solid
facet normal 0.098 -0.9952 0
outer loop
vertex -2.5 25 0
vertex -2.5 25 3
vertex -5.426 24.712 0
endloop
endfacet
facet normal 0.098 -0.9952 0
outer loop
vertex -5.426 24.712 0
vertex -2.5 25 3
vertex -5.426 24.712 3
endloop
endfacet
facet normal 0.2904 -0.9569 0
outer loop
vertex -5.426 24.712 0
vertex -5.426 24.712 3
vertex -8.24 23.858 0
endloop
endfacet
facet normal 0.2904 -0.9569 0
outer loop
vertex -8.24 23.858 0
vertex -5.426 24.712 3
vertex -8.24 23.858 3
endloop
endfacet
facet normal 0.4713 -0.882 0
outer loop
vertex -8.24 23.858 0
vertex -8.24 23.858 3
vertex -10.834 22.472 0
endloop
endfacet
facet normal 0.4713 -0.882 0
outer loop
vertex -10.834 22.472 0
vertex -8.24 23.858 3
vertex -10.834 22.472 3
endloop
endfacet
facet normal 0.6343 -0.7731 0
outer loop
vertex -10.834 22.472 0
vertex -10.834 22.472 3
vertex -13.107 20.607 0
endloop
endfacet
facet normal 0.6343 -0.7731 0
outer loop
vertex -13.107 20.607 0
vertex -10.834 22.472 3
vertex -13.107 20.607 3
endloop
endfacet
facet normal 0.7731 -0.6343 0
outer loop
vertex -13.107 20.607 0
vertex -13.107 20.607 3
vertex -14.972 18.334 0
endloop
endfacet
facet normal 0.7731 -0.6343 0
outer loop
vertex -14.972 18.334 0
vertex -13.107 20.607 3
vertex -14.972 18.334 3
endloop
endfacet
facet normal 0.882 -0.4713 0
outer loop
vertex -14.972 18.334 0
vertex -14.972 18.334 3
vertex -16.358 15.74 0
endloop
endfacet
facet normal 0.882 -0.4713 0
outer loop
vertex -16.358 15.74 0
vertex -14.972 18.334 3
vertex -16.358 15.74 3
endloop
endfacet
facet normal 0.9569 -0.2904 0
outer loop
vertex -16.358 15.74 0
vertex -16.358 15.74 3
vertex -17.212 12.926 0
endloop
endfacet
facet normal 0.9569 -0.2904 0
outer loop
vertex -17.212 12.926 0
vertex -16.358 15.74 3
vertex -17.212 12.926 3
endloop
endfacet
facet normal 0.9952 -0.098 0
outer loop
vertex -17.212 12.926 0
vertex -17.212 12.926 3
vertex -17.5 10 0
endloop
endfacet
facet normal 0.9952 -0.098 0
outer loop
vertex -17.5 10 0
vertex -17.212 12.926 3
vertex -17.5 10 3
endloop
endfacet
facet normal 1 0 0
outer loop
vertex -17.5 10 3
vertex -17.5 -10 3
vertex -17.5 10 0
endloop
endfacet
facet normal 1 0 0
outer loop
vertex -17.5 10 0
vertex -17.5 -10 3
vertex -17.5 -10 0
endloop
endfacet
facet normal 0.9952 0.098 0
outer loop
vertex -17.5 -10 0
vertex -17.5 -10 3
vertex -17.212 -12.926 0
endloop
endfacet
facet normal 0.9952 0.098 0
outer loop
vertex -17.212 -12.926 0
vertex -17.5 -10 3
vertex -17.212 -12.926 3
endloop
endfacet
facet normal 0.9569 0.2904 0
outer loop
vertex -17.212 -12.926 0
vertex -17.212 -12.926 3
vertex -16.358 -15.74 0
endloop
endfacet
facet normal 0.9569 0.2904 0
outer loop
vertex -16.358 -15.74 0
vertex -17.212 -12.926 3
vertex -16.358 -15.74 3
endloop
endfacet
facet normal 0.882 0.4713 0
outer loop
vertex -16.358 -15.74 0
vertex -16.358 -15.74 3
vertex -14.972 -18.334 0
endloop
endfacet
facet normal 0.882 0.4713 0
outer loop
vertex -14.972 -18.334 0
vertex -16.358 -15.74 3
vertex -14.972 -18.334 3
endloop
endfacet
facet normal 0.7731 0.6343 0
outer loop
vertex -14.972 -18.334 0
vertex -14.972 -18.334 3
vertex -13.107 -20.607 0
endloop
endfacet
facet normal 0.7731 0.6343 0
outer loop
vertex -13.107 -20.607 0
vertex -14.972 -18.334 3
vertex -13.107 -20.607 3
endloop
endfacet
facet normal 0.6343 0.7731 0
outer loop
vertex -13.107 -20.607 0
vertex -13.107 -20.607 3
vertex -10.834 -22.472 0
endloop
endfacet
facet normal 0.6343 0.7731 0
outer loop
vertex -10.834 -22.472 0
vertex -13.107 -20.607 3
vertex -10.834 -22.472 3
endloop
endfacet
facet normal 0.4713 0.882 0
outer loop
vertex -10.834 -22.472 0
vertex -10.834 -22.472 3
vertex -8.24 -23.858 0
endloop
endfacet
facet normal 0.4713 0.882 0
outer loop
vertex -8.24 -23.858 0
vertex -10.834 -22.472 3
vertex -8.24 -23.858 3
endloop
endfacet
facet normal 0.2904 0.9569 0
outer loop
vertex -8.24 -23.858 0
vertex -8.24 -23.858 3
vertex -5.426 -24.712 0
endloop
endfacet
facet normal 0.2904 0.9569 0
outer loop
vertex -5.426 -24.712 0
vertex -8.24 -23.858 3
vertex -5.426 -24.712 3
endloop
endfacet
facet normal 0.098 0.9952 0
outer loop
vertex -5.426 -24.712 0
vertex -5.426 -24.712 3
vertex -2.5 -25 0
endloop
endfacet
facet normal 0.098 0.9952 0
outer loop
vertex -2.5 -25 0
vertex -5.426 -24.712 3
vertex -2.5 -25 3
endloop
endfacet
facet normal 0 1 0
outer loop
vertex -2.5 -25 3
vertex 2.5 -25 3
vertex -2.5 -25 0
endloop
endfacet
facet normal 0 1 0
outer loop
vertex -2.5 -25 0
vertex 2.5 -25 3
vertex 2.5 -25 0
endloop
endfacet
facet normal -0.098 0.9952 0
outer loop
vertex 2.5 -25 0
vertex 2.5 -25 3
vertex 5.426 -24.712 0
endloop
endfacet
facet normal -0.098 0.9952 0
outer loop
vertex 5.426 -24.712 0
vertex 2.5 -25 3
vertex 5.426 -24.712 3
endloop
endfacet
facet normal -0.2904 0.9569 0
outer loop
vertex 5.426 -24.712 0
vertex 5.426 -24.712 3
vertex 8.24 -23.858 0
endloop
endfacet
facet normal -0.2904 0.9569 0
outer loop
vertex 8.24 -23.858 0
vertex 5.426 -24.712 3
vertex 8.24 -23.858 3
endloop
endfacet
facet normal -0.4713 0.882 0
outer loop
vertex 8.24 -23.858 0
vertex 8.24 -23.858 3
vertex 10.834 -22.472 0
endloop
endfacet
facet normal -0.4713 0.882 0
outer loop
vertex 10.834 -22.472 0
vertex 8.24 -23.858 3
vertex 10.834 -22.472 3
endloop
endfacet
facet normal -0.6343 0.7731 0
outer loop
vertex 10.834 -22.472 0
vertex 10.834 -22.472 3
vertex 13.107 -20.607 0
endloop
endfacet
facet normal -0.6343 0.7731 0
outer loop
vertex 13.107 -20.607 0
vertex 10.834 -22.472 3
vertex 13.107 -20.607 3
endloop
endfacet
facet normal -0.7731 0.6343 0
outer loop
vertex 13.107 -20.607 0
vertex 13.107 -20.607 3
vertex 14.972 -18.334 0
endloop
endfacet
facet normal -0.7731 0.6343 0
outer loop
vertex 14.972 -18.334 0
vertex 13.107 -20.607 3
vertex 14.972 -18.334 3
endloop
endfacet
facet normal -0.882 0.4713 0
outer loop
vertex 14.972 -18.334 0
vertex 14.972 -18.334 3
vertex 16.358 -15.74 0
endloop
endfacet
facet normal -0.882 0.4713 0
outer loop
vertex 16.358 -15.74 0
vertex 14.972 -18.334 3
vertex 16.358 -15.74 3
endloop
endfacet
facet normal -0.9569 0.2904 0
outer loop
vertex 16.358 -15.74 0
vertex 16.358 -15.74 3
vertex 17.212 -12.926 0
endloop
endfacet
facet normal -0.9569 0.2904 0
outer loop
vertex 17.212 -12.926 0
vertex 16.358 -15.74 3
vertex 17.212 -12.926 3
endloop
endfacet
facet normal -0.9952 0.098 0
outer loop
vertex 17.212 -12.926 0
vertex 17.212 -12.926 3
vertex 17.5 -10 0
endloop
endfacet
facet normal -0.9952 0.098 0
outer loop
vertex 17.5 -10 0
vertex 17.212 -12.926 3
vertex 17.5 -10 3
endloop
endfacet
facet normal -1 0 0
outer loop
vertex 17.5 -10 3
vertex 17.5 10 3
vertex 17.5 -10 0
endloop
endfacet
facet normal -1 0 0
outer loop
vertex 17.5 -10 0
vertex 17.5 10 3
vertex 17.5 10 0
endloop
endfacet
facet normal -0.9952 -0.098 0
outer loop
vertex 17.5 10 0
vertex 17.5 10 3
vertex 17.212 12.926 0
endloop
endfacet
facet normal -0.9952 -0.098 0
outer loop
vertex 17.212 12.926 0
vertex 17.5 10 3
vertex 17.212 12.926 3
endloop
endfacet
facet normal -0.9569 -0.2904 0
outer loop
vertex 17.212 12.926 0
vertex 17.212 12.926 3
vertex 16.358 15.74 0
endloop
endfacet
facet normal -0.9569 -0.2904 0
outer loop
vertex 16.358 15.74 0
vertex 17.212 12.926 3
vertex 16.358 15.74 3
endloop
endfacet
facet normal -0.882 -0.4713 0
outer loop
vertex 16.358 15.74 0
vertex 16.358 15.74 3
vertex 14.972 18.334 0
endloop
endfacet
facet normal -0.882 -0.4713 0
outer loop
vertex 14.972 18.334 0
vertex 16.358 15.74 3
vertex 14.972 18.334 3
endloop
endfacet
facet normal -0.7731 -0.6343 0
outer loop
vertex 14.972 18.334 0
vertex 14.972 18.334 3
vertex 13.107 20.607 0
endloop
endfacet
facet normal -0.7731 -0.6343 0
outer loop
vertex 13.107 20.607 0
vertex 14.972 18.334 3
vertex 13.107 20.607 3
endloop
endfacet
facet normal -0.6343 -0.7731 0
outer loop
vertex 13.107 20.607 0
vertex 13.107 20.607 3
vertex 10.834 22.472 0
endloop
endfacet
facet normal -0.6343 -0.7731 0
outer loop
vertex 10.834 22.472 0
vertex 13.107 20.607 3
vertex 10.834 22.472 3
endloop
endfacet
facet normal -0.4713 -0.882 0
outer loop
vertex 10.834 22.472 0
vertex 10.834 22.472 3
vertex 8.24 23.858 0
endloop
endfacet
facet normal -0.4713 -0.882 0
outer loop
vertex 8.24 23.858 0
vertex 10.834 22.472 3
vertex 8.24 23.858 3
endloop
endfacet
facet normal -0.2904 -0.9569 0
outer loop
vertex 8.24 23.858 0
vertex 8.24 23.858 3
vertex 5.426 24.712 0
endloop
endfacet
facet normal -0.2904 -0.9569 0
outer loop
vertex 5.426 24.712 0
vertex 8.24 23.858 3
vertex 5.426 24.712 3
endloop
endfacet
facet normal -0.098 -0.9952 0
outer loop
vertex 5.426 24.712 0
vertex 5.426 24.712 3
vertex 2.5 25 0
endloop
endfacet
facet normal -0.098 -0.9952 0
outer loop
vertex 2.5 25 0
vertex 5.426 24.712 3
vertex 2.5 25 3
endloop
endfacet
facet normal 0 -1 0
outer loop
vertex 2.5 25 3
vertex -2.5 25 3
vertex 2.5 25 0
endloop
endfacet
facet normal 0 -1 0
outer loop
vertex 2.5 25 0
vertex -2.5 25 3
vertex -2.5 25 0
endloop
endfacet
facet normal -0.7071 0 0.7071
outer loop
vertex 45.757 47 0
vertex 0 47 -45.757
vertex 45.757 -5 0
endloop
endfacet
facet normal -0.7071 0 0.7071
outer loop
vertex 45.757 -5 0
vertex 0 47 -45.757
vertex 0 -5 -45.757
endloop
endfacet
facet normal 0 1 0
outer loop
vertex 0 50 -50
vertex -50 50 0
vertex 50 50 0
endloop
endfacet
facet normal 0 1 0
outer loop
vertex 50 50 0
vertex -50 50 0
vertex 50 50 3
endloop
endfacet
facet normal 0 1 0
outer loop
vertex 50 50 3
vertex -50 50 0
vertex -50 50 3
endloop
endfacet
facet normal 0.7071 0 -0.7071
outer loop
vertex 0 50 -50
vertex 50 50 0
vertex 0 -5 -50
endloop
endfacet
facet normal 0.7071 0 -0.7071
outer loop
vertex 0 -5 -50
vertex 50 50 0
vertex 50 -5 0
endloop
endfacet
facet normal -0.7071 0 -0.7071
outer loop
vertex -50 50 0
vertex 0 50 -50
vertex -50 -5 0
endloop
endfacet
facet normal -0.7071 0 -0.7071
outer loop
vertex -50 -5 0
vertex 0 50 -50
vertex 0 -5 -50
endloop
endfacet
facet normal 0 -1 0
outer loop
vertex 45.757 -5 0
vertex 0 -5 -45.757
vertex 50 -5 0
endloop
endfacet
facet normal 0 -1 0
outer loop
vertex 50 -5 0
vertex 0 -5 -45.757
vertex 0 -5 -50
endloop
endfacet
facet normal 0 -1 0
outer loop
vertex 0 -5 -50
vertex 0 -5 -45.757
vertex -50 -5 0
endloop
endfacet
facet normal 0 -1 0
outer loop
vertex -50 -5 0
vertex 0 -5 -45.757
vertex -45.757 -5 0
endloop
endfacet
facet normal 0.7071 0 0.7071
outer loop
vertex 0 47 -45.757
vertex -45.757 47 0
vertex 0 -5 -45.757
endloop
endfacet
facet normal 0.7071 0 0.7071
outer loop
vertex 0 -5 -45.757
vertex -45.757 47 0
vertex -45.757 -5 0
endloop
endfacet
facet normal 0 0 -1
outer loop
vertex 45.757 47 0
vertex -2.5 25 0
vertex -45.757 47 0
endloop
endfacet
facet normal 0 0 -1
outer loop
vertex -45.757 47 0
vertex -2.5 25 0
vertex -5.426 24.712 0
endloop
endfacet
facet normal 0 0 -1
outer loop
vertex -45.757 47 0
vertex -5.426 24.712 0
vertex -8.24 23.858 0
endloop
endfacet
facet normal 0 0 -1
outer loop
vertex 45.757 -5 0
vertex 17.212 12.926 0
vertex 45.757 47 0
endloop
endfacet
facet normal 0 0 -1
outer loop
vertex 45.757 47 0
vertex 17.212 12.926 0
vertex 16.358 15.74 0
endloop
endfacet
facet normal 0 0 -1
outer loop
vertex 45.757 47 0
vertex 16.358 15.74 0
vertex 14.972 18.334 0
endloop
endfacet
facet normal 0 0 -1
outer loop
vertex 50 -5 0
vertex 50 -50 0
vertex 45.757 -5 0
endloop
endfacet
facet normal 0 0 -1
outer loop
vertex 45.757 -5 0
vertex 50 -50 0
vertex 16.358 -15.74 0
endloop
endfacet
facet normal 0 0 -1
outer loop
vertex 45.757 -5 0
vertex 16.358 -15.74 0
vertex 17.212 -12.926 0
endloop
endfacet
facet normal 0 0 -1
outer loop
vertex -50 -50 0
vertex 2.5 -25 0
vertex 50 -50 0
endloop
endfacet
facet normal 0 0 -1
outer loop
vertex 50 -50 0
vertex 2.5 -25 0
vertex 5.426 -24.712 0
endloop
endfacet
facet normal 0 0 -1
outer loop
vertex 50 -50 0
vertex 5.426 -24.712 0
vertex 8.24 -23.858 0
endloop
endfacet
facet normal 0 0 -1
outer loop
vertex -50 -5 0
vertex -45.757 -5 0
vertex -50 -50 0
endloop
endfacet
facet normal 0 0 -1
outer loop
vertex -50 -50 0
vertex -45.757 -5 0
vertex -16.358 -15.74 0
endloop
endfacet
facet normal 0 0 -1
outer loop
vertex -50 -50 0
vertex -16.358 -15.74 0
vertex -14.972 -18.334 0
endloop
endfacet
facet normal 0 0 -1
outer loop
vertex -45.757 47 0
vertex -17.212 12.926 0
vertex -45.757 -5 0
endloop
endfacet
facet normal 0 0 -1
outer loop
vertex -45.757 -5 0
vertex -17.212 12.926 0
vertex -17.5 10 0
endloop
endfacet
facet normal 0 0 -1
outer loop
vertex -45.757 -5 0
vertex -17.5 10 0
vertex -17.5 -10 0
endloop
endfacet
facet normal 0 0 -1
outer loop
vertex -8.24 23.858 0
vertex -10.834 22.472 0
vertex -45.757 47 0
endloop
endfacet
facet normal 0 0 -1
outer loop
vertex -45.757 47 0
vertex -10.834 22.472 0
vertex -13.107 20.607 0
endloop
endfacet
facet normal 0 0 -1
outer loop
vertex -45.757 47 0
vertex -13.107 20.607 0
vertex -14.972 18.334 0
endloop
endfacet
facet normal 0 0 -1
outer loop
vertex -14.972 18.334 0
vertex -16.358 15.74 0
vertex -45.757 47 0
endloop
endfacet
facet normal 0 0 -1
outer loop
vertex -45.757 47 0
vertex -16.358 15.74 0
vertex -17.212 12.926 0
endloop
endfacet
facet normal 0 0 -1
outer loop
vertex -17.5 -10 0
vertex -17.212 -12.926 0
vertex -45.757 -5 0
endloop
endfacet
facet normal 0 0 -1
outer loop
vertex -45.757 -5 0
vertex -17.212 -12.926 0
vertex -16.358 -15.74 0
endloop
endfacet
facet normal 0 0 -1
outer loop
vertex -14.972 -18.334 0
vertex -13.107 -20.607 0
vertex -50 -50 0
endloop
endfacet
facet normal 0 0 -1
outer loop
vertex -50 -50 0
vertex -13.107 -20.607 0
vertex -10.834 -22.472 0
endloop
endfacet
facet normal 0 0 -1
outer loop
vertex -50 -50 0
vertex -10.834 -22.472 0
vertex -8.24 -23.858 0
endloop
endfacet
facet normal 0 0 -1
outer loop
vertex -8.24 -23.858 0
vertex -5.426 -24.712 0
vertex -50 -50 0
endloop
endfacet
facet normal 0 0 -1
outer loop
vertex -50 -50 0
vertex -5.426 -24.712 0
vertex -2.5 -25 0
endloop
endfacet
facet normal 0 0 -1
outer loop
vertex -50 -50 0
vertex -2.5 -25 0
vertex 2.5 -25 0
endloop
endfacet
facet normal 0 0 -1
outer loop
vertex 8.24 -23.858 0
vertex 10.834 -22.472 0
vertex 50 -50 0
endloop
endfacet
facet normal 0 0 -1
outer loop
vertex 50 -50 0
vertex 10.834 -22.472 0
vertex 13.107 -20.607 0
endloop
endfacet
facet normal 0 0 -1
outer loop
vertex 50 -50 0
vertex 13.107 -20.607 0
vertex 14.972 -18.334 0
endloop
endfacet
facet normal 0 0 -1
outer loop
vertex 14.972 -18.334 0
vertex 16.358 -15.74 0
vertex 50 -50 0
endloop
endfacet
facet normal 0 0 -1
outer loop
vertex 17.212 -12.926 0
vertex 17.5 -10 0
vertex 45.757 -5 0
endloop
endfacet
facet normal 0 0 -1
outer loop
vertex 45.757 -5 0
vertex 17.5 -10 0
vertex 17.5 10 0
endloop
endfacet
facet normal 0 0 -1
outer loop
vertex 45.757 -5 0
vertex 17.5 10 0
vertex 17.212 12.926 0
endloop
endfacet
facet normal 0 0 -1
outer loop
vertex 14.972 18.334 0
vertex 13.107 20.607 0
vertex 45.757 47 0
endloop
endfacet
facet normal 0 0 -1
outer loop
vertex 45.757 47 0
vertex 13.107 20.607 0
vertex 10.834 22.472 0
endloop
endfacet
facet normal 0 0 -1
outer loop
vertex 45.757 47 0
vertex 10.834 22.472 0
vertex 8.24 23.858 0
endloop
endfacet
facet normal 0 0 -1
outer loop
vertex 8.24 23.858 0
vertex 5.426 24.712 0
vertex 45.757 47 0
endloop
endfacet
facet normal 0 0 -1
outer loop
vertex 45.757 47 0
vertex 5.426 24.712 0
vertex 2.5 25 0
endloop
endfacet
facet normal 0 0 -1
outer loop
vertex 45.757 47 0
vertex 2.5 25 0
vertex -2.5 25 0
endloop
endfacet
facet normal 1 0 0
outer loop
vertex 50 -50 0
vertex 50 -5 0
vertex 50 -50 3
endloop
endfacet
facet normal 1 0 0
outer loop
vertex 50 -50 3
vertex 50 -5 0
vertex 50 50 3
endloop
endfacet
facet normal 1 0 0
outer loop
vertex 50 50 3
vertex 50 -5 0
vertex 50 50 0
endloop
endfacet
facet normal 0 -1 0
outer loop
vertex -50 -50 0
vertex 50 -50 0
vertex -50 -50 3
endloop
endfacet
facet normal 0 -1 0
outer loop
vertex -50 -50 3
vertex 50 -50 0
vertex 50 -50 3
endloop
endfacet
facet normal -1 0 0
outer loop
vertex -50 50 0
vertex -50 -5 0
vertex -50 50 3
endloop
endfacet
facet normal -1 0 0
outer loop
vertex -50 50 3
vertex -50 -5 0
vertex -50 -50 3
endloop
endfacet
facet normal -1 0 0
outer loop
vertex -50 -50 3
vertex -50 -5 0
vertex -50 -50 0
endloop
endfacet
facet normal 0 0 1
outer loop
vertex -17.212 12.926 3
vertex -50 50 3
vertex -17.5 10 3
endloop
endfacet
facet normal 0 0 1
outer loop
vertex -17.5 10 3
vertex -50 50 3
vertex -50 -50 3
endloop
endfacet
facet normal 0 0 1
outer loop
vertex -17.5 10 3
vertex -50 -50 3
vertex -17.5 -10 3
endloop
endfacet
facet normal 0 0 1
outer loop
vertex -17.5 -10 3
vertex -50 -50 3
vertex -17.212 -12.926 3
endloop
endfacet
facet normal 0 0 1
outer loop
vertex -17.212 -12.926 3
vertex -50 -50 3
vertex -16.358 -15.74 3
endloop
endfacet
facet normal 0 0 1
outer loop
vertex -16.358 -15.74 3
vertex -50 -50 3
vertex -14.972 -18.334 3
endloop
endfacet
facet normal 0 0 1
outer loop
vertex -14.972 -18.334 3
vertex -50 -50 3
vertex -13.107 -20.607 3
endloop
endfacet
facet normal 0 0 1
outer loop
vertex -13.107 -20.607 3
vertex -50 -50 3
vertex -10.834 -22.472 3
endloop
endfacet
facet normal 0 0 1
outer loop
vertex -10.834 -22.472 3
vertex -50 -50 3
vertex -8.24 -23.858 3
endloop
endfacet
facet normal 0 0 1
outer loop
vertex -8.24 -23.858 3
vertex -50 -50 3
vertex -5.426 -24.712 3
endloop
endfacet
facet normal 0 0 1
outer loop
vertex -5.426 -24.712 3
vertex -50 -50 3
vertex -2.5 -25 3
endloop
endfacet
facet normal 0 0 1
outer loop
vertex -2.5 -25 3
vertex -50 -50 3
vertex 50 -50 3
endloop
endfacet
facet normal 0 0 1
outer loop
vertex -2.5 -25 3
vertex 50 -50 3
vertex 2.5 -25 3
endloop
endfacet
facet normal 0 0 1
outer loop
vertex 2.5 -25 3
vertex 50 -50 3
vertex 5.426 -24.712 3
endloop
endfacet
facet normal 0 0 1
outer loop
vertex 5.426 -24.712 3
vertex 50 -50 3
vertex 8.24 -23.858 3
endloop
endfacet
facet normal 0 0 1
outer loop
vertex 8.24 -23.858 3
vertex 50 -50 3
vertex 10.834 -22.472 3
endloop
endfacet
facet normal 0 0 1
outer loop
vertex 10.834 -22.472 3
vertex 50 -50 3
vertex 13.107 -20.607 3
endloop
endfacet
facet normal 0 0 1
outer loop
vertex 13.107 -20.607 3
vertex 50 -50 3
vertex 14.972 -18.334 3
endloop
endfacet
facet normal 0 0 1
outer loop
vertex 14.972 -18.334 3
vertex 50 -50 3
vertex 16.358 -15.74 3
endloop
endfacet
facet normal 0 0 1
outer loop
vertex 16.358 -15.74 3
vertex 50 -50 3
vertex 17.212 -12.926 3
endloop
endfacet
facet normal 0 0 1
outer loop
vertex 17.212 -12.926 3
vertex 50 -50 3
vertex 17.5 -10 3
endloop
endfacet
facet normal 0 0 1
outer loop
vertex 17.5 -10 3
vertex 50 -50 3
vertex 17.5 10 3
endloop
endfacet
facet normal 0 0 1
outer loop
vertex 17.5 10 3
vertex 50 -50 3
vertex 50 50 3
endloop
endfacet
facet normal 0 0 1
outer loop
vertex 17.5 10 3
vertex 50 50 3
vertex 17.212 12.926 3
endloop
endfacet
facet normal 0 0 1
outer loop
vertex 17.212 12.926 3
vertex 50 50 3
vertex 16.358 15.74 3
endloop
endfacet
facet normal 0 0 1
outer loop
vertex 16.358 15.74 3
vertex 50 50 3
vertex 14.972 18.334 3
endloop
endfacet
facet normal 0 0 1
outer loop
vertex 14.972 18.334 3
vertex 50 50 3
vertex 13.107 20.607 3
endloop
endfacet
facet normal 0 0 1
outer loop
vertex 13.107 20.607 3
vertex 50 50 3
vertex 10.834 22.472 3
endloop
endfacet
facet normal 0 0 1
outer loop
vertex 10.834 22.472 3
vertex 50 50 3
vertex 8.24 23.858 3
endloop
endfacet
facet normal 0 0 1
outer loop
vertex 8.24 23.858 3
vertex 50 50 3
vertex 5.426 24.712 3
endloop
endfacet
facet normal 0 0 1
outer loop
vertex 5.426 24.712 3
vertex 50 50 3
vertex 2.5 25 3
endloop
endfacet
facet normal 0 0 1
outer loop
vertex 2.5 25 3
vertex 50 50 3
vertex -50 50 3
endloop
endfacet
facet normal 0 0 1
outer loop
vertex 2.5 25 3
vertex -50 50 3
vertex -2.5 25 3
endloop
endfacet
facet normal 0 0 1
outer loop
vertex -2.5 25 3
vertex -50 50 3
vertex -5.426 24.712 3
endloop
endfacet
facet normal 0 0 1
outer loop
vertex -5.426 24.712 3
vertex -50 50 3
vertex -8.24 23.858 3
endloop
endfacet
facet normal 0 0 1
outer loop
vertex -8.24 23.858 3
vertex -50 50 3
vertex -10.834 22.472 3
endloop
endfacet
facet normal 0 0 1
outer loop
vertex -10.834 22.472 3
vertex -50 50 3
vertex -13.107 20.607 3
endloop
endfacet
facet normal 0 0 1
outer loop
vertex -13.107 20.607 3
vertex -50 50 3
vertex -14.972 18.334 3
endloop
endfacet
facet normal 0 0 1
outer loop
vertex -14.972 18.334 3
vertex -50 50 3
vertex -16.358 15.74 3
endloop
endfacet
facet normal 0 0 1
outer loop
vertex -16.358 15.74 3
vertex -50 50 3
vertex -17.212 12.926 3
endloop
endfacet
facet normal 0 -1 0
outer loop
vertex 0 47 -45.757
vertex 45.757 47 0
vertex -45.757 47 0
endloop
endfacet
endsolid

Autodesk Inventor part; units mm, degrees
ref_plane "YZ Plane" through (0, 0, 0) normal (1, 0, 0) x (0, 1, 0)
ref_plane "XZ Plane" through (0, 0, 0) normal (0, 1, 0) x (-1, 0, 0)
ref_plane "XY Plane" through (0, 0, 0) normal (0, 0, 1) x (1, 0, 0)
sketch "Sketch1" plane through (0, 0, 0) normal (0, 0, 1) x (1, 0, 0)
  line L0 (-50, -50) -> (50, -50)
  line L1 (50, -50) -> (50, 50)
  line L2 (50, 50) -> (-50, 50)
  line L3 (-50, 50) -> (-50, -50)
  line L4 (-50, -50) -> (50, 50) construction
  line L5 (50, -50) -> (-50, 50) construction
  point P0 (0, 0)
  dimension "d0" = 100
  dimension "d1" = 100
extrude "Extrusion1" add sketch "Sketch1" along normal blind 3
sketch "Sketch2" plane through (-50, 50, 0) normal (0, 1, 0) x (1, 0, 0)
  line L0 (0, 0) -> (100, 0) projected
  line L1 (0, 0) -> (50, 50)
  line L2 (50, 50) -> (52.1213, 47.8787)
  line L3 (52.1213, 47.8787) -> (2.1213, -2.1213)
  line L4 (2.1213, -2.1213) -> (0, 0)
  line L5 (0, 0) -> (70.7107, 0) construction
  line L6 (100, 0) -> (52.1213, 47.8787)
  line L7 (52.1213, 47.8787) -> (50, 45.7574)
  line L8 (50, 45.7574) -> (97.8787, -2.1213)
  line L9 (97.8787, -2.1213) -> (100, 0)
  point P0 (50, 0)
  dimension "d4" = 45
  dimension "d5" = 3
  dimension "d6" = 3
extrude "Extrusion2" add sketch "Sketch2" against normal blind 55 contours L1 L2 L3 L0 | L0 L3 L4 | L8 L3 L6 L0 | L0 L9 L8
sketch "Sketch3" plane through (0, 0, 3) normal (0, 0, 1) x (1, 0, 0)
  line L0 (2.5, -25) -> (-2.5, -25)
  line L1 (-17.5, -10) -> (-17.5, 10)
  line L2 (-2.5, 25) -> (2.5, 25)
  line L3 (17.5, 10) -> (17.5, -10)
  line L4 (17.5, -25) -> (-17.5, 25) construction
  line L5 (-17.5, -25) -> (17.5, 25) construction
  arc A0 (-2.5, 25) -> (-17.5, 10) centre (-2.5, 10) ccw
  arc A1 (17.5, 10) -> (2.5, 25) centre (2.5, 10) ccw
  arc A2 (2.5, -25) -> (17.5, -10) centre (2.5, -10) ccw
  arc A3 (-17.5, -10) -> (-2.5, -25) centre (-2.5, -10) ccw
  point P0 (0, 0)
  dimension "d9" = 35
  dimension "d10" = 50
  dimension "d11" = 15
extrude "Extrusion3" cut sketch "Sketch3" against normal blind 3
sketch "Sketch4" plane through (-50, 50, 3) normal (0, 1, 0) x (1, 0, 0)
  line L0 (95.7574, 3) -> (50, 48.7574) projected
  line L1 (95.7574, 3) -> (4.2426, 3) projected
  line L2 (50, 48.7574) -> (4.2426, 3)
  line L3 (95.7574, 3) -> (100, 3) projected
  line L4 (4.2426, 3) -> (95.7574, 3)
  line L5 (95.7574, 3) -> (50, 48.7574)
  line L6 (0, 3) -> (50, 53) projected
  point P0 (50, 3)
extrude "Extrusion4" add sketch "Sketch4" against normal blind 3
properties part number "fixation"
